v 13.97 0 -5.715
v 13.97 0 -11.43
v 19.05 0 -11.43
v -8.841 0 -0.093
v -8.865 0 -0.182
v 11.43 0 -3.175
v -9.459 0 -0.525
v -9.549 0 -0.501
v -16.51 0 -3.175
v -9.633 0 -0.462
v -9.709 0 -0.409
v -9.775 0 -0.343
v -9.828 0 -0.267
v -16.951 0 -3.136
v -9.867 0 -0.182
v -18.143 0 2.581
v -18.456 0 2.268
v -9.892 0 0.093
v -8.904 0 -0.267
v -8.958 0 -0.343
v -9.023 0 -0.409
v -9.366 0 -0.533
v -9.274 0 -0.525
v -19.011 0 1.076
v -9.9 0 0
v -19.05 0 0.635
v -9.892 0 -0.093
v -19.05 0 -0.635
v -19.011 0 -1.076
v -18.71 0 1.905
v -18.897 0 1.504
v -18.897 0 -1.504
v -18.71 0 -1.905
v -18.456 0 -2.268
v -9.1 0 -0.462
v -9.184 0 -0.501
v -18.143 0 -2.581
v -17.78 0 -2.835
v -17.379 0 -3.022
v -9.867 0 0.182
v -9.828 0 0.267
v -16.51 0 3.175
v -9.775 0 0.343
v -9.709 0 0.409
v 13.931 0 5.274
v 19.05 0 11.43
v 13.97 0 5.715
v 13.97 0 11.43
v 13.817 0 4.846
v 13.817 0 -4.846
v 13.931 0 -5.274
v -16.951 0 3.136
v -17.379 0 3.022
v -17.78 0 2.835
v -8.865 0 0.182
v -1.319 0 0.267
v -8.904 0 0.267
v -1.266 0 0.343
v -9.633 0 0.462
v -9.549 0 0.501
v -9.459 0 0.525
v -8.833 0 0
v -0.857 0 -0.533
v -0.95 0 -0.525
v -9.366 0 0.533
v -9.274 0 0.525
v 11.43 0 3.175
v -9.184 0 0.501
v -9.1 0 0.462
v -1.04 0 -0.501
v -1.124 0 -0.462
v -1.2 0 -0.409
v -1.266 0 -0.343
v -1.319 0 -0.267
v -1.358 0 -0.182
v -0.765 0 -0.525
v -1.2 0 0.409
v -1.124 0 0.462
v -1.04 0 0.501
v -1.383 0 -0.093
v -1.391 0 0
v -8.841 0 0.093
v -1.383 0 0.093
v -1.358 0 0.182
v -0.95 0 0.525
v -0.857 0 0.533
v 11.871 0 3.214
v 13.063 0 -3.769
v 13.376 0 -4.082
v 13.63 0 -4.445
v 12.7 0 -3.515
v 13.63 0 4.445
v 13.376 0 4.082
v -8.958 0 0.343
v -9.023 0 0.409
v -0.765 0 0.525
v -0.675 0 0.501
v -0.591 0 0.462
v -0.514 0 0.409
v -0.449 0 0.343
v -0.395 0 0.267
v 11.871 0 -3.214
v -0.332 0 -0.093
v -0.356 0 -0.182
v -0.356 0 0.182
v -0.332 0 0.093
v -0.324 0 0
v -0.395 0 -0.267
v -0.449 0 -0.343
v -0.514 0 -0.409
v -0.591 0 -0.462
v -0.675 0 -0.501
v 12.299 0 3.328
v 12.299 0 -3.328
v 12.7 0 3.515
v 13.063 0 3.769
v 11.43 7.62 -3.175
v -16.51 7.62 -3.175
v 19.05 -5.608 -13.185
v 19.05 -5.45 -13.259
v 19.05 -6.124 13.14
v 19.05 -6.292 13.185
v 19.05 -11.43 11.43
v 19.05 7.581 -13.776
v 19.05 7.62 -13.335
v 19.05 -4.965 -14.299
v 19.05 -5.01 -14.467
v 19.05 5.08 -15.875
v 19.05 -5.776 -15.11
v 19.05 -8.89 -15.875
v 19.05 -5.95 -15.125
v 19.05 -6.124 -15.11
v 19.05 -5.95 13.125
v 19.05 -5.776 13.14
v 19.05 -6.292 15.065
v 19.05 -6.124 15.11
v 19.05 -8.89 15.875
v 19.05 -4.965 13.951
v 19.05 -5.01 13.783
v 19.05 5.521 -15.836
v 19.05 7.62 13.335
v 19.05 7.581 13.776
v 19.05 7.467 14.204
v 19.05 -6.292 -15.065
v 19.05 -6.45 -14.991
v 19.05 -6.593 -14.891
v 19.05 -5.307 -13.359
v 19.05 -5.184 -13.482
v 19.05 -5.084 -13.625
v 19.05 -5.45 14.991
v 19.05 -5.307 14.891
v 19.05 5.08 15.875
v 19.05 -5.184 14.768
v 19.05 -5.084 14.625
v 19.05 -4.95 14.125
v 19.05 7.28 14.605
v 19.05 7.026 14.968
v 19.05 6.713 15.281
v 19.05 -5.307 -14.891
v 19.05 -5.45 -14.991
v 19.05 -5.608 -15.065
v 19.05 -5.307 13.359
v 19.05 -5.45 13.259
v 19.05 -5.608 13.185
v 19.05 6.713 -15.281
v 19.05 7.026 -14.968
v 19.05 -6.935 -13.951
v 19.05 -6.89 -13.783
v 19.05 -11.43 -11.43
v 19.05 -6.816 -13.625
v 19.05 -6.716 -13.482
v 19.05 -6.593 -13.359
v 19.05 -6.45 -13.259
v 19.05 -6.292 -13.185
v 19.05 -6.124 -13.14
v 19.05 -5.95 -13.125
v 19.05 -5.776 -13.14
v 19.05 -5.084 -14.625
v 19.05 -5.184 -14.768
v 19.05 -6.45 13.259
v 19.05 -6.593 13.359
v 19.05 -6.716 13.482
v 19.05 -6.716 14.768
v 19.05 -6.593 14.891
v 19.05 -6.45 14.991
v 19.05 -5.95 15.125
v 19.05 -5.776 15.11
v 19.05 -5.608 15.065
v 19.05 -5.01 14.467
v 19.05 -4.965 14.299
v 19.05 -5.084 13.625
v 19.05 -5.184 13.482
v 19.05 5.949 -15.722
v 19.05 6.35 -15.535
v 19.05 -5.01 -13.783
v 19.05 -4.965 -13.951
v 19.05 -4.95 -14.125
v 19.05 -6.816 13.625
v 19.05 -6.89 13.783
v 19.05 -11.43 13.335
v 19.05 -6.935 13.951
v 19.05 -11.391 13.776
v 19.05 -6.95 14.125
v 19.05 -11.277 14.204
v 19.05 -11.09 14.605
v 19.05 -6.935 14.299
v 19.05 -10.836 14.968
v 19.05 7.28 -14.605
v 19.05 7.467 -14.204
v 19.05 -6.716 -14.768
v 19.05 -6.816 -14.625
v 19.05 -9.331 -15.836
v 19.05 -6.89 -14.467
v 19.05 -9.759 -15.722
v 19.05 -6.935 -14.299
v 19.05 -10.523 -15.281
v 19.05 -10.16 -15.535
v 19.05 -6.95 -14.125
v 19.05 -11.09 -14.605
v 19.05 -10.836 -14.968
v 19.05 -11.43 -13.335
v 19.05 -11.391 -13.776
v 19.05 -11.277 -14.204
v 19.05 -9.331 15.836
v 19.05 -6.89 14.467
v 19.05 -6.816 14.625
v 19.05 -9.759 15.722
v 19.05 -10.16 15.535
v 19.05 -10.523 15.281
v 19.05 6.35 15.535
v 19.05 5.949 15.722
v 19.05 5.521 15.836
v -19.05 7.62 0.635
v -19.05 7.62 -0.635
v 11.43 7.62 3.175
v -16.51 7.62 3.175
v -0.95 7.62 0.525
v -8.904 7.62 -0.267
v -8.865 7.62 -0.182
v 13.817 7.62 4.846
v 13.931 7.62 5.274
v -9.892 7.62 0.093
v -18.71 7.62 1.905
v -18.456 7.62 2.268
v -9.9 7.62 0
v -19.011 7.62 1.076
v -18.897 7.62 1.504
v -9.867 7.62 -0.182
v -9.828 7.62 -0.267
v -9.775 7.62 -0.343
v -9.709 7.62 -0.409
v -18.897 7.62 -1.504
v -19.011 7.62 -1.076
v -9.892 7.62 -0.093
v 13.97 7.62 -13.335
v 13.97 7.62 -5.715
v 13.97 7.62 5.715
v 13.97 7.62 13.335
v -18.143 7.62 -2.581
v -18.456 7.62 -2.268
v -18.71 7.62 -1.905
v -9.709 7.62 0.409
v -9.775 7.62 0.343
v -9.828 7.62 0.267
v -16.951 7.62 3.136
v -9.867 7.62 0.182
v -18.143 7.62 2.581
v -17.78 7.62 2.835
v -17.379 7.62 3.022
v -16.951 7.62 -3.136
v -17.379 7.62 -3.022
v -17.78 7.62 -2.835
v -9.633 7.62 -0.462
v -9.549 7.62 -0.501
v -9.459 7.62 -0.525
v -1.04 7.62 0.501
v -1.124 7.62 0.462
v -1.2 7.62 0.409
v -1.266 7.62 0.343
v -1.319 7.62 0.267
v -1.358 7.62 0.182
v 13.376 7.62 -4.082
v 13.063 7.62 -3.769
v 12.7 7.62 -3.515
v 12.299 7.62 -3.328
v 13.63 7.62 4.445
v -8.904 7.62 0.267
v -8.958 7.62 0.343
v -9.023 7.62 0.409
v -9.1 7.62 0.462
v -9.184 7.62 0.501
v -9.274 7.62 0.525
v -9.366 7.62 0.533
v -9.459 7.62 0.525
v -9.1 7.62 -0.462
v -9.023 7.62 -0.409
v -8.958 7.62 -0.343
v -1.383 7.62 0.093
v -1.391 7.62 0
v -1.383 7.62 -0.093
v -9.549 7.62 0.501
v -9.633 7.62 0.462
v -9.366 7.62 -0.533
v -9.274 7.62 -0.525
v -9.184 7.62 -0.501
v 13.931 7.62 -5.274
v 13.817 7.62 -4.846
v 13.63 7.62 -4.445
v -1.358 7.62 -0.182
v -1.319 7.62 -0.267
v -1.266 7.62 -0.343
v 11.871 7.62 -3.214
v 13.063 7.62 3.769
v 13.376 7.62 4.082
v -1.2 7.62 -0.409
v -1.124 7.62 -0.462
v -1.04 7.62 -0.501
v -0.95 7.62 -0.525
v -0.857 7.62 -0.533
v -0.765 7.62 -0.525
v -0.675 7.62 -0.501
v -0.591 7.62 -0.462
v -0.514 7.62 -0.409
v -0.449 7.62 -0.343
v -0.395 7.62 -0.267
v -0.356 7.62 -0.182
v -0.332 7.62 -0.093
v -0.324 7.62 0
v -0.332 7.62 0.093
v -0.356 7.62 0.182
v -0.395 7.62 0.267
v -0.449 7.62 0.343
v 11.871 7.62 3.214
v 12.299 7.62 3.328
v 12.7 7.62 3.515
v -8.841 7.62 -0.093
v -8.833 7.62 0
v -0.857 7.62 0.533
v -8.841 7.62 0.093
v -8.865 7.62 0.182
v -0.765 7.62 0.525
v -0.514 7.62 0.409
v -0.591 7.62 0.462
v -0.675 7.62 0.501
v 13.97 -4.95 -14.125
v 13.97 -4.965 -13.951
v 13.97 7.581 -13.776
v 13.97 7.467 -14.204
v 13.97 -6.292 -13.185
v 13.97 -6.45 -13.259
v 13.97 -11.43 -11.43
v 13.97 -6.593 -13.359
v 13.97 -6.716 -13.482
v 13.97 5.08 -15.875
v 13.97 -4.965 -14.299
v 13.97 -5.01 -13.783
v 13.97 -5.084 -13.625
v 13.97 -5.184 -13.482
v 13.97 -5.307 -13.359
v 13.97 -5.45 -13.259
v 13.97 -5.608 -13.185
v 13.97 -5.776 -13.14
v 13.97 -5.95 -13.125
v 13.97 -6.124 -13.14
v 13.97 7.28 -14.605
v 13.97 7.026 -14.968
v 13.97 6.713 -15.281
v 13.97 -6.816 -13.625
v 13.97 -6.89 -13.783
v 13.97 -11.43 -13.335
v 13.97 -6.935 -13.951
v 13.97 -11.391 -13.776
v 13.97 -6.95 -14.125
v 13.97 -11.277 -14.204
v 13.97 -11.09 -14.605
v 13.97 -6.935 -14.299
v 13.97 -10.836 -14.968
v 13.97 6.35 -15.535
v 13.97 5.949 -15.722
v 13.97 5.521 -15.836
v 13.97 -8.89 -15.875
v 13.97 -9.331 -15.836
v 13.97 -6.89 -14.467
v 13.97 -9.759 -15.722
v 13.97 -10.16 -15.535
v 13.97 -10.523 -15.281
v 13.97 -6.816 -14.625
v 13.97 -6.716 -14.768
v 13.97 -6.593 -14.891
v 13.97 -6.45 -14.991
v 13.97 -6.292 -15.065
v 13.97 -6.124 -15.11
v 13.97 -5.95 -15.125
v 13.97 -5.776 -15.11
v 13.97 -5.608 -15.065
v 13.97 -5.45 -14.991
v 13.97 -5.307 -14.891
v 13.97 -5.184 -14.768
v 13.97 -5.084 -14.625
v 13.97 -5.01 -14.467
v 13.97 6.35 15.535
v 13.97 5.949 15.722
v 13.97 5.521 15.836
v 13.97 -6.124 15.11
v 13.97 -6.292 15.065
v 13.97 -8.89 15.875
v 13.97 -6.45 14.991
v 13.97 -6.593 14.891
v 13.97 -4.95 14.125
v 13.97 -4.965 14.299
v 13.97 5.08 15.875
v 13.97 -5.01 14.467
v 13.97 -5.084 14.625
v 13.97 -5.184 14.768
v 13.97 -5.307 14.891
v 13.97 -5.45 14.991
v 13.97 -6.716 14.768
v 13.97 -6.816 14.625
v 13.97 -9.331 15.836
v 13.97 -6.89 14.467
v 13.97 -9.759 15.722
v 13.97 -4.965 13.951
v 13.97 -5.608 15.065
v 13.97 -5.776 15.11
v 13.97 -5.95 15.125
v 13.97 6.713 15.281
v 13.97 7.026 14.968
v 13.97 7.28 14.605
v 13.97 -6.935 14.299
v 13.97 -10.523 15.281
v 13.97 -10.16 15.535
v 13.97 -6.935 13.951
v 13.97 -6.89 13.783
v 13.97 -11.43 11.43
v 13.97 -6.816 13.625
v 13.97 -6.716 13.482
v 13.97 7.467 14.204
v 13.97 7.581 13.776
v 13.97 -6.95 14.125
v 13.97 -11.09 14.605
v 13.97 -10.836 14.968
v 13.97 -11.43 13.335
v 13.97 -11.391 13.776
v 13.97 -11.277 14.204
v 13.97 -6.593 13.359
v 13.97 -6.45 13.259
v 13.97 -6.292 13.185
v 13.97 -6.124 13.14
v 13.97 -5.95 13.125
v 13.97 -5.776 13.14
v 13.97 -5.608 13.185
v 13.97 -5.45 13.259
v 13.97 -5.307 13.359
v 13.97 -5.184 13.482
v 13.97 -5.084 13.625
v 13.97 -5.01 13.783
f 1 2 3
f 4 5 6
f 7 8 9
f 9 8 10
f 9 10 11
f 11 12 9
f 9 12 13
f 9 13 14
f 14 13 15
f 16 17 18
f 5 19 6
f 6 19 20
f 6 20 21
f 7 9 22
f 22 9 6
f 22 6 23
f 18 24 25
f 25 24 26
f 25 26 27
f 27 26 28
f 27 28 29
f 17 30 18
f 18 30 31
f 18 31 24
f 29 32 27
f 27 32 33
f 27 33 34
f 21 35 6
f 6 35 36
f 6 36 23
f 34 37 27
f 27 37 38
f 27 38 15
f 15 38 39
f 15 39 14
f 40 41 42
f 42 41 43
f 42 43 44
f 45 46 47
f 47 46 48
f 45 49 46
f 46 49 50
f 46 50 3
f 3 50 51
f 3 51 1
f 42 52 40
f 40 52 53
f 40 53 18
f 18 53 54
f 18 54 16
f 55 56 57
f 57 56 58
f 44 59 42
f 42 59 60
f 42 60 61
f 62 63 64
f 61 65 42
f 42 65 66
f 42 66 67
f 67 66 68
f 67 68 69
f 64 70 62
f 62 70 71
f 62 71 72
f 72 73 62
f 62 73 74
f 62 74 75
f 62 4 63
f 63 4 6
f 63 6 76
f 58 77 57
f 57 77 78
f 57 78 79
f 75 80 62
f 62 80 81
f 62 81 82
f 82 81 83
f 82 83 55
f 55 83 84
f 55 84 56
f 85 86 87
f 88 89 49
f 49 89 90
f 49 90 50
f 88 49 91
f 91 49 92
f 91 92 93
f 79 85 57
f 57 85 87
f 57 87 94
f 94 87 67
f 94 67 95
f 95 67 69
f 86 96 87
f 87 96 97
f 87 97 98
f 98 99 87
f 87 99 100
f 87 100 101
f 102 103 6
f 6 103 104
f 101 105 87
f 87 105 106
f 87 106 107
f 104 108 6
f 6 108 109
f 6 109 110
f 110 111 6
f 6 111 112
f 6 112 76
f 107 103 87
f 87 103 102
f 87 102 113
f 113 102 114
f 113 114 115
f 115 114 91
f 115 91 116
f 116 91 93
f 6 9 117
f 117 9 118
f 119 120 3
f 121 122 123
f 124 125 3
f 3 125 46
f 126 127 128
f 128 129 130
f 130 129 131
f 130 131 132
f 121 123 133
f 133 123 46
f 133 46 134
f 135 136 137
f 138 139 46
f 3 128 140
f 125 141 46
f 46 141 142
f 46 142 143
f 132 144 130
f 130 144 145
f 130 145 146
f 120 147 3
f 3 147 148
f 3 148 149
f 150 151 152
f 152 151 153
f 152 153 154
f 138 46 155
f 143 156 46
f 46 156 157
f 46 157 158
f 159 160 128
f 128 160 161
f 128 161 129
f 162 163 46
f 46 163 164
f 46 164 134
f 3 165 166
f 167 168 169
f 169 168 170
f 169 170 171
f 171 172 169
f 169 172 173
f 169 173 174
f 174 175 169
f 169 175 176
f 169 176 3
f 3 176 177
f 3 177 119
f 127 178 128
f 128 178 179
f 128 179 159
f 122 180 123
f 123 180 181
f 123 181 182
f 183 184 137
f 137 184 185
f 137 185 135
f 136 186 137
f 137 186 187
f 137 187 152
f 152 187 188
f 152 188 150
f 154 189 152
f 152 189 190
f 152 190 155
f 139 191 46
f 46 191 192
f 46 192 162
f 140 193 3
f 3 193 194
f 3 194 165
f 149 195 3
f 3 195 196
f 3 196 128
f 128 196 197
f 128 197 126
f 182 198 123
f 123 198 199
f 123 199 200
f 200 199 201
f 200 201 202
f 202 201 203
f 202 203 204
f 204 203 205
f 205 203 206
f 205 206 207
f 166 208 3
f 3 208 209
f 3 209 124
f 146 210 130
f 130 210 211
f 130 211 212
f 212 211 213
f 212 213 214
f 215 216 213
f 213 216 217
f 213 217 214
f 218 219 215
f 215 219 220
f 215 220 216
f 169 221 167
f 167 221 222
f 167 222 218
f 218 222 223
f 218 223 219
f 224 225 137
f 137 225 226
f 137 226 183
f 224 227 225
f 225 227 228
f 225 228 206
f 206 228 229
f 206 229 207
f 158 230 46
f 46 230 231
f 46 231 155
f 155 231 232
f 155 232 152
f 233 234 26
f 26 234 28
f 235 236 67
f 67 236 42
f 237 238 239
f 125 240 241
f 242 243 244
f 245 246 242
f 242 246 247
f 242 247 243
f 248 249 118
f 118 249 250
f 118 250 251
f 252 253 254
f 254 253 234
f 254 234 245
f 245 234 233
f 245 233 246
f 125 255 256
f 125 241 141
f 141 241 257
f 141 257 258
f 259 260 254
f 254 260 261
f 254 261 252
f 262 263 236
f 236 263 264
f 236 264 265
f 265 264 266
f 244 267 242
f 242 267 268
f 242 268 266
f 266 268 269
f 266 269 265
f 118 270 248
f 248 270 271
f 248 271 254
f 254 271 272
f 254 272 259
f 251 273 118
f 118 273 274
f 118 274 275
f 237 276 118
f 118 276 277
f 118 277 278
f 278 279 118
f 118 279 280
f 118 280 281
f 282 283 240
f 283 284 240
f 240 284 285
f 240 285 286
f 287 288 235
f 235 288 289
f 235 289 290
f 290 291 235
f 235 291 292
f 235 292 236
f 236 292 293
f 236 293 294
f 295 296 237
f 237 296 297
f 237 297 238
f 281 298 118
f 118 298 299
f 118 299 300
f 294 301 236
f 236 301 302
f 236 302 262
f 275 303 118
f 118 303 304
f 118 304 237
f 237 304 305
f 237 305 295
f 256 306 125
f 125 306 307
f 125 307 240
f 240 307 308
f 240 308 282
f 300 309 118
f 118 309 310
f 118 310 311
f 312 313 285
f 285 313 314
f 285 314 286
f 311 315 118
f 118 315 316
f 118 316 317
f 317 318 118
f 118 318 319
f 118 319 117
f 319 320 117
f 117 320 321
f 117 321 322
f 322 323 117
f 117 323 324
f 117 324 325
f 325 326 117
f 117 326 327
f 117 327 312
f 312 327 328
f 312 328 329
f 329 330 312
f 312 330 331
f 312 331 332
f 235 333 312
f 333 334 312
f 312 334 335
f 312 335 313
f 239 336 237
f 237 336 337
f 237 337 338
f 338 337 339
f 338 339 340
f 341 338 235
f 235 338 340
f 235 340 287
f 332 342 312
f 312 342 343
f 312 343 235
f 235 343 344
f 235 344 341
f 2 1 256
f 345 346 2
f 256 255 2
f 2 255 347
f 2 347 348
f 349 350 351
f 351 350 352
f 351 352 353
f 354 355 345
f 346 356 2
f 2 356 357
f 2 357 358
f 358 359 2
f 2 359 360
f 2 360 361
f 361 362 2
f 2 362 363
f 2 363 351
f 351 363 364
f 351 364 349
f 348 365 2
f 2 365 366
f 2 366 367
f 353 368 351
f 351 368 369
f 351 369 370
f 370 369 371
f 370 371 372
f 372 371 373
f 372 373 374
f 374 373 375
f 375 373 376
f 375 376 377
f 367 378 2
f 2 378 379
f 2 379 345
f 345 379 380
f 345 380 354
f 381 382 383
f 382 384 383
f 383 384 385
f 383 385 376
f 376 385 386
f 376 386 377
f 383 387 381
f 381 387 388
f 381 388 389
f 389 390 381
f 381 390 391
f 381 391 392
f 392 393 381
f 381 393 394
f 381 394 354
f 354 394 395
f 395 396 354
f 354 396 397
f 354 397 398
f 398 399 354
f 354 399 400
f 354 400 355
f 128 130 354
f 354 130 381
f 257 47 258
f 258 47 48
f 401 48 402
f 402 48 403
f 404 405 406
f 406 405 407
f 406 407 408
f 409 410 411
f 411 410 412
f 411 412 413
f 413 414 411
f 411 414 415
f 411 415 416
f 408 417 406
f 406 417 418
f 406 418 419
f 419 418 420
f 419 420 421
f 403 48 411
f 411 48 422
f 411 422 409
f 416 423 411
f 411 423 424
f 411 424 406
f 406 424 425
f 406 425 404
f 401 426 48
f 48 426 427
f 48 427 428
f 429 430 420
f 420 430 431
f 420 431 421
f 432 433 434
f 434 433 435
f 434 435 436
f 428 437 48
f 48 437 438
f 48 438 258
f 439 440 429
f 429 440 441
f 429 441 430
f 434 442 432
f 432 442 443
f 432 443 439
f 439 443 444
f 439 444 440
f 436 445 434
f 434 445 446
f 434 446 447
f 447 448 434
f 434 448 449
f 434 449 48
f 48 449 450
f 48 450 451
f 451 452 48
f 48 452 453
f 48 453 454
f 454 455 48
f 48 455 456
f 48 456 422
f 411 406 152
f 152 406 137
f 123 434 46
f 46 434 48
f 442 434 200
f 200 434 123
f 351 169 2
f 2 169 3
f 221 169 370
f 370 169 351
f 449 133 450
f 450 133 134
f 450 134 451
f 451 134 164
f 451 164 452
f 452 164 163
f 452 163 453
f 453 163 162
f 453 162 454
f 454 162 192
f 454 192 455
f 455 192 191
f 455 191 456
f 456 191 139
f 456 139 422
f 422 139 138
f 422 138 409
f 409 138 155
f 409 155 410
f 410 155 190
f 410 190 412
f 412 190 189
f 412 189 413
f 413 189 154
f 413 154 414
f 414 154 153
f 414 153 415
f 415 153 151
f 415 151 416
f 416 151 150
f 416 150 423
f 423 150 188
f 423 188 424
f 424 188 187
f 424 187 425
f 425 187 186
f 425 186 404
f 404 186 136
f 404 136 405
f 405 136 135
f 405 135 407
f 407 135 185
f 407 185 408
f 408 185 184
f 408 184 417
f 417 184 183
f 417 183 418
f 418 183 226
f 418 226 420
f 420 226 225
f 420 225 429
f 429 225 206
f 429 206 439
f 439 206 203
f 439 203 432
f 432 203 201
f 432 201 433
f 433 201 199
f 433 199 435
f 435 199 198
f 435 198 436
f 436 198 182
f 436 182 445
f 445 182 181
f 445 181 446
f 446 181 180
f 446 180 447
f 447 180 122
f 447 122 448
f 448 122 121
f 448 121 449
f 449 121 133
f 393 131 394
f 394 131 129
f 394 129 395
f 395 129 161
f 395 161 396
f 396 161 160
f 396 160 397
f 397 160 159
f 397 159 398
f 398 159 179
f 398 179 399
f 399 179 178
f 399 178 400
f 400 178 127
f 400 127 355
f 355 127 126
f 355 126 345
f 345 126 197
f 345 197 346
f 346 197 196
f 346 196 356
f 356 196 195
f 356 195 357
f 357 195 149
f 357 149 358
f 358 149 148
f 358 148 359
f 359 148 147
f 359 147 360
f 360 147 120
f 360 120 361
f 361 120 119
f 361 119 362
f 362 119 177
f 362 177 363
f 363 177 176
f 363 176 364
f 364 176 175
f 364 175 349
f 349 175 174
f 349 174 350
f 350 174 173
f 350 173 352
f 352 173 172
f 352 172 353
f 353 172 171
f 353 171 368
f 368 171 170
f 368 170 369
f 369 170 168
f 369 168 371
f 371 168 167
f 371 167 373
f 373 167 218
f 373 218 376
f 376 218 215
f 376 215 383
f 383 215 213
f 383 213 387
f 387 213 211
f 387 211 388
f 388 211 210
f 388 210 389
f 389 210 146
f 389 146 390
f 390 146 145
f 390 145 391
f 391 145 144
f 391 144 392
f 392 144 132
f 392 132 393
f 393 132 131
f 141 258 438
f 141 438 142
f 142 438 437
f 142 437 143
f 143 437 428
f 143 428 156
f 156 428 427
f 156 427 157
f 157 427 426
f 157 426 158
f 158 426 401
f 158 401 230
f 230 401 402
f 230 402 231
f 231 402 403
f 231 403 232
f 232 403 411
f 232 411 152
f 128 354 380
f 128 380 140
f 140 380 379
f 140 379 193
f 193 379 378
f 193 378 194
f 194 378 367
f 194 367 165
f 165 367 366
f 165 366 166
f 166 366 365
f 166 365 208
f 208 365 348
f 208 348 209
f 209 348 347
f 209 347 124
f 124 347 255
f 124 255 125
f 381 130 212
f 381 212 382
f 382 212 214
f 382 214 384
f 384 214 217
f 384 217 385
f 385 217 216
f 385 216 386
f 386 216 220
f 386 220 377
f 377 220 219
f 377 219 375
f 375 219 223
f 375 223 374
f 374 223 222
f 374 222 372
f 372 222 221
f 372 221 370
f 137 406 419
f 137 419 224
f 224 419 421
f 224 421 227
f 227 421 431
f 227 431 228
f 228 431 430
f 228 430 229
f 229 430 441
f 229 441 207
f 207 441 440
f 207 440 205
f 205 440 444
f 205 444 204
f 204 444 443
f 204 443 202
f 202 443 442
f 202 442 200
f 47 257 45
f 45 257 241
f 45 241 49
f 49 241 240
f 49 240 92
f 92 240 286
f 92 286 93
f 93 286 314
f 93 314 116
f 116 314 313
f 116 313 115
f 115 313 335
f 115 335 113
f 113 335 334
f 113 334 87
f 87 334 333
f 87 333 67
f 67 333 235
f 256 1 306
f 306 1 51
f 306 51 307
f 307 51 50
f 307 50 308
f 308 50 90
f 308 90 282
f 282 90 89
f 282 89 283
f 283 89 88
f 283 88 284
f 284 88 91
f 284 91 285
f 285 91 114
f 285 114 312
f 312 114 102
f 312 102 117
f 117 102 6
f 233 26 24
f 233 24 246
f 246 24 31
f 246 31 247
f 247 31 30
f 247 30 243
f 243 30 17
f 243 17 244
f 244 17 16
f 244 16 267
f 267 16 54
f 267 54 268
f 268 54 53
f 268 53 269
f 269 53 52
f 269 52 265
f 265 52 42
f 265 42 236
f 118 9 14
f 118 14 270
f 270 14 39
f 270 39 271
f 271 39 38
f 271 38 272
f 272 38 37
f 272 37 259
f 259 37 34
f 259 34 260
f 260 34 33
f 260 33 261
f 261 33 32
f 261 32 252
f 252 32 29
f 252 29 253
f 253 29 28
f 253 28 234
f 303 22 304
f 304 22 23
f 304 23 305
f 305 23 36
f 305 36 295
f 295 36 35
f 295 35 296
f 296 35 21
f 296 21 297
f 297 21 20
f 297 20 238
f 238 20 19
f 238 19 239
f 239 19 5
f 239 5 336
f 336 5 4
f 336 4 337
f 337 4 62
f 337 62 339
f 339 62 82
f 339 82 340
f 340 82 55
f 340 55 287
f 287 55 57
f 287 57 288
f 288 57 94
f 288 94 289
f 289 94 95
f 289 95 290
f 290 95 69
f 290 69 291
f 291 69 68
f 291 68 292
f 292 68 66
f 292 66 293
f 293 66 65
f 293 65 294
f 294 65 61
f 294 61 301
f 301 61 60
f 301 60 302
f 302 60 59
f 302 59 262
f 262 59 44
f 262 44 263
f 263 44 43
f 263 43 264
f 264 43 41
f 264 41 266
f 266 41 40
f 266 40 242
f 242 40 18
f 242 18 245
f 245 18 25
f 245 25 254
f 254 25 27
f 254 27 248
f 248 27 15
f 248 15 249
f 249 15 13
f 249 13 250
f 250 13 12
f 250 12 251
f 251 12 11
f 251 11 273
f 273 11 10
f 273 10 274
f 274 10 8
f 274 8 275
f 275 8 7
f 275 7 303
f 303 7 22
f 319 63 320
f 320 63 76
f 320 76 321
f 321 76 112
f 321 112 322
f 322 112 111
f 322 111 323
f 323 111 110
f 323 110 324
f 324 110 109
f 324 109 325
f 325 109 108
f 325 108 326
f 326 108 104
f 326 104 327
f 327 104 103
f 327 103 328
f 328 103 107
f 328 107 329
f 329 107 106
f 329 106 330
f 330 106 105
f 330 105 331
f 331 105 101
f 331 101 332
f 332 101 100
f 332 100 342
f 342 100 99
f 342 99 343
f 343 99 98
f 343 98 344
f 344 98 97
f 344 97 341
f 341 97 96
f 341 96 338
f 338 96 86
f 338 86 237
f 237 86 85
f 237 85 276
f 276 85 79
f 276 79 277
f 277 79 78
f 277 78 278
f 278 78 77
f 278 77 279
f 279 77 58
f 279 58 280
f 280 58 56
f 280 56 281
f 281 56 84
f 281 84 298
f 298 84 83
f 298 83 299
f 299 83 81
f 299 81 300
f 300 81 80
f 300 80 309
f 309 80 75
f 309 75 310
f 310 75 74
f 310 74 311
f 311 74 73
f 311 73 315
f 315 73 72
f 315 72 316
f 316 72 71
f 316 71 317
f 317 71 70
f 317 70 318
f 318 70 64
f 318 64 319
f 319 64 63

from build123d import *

# Parameters (mm, degrees)
SKETCH2_W           = 38.1
SKETCH2_H           = 6.35
BOSS_EXTRUDE1_DEPTH = 7.62
SKETCH3_W           = 5.08
SKETCH3_H           = 7.62
BOSS_EXTRUDE2_DEPTH = 12.7
SKETCH4_W           = 5.08
SKETCH4_H           = 4.445
BOSS_EXTRUDE3_DEPTH = 11.43
CUT_EXTRUDE2_DEPTH  = 43.828384571
FILLET1_R           = 2.54
SKETCH8_R           = 0.5334
CUT_EXTRUDE4_DEPTH  = 28.305


with BuildPart() as part:
    # Sketch2 → Boss-Extrude1 (new body)
    with BuildSketch(Plane(origin=(0, 0, 0), x_dir=(1, 0, 0), z_dir=(0, 1, 0))):
        Rectangle(SKETCH2_W, SKETCH2_H)
    extrude(amount=BOSS_EXTRUDE1_DEPTH)

    # Sketch3 → Boss-Extrude2 (add)
    with BuildSketch(Plane(origin=(0, 0, -3.175), x_dir=(-1, 0, 0), z_dir=(0, 0, -1))):
        with Locations((-16.51, 3.81)):
            Rectangle(SKETCH3_W, SKETCH3_H)
    boss_extrude2 = extrude(amount=BOSS_EXTRUDE2_DEPTH)

    # Mirror1: Boss-Extrude2 across plane
    add(boss_extrude2.mirror(Plane.XY))

    # Sketch4 → Boss-Extrude3 (add)
    with BuildSketch(Plane.XZ):
        with Locations((16.51, 13.6525)):
            Rectangle(SKETCH4_W, SKETCH4_H)
        with Locations((16.51, -13.6525)):
            Rectangle(SKETCH4_W, SKETCH4_H)
    extrude(amount=BOSS_EXTRUDE3_DEPTH)

    # Sketch6 → Cut-Extrude2 (cut, through all)
    with BuildSketch(Plane(origin=(19.05, 0, 0), x_dir=(0, 0, -1), z_dir=(1, 0, 0))):
        with BuildLine():
            ThreePointArc((-14.991025404, -5.45), (-15.125, -5.95), (-14.991025404, -6.45))
            ThreePointArc((-14.991025404, -6.45), (-13.866180955, -6.915925826), (-13.125, -5.95))
            ThreePointArc((-13.125, -5.95), (-13.866180955, -4.984074174), (-14.991025404, -5.45))
        make_face()
        with BuildLine():
            ThreePointArc((15.125, -5.95), (15.090925826, -5.691180955), (14.991025404, -5.45))
            ThreePointArc((14.991025404, -5.45), (13.125, -5.95), (14.991025404, -6.45))
            ThreePointArc((14.991025404, -6.45), (15.090925826, -6.208819045), (15.125, -5.95))
        make_face()
    extrude(amount=-CUT_EXTRUDE2_DEPTH, mode=Mode.SUBTRACT)

    # Fillet1
    fillet1_edges = [part.edges().sort_by_distance(p)[0] for p in [
        (13.97, 3.81, -3.175),
        (16.51, 7.62, -15.875),
        (16.51, 7.62, 15.875),
        (13.97, 3.81, 3.175),
        (16.51, -11.43, 15.875),
        (16.51, -11.43, -15.875),
        (-19.05, 3.81, 3.175),
        (-19.05, 3.81, -3.175),
    ]]
    fillet(fillet1_edges, radius=FILLET1_R)

    # Sketch8 → Cut-Extrude4 (cut, through all)
    with BuildSketch(Plane.XZ):
        with Locations(Location((-0.85725, 0, 0), (0, 0, 270))):
            Circle(SKETCH8_R)
        with Locations(Location((-9.36625, 0, 0), (0, 0, 270))):
            Circle(SKETCH8_R)
    extrude(amount=-CUT_EXTRUDE4_DEPTH, mode=Mode.SUBTRACT)


solid = part.part
